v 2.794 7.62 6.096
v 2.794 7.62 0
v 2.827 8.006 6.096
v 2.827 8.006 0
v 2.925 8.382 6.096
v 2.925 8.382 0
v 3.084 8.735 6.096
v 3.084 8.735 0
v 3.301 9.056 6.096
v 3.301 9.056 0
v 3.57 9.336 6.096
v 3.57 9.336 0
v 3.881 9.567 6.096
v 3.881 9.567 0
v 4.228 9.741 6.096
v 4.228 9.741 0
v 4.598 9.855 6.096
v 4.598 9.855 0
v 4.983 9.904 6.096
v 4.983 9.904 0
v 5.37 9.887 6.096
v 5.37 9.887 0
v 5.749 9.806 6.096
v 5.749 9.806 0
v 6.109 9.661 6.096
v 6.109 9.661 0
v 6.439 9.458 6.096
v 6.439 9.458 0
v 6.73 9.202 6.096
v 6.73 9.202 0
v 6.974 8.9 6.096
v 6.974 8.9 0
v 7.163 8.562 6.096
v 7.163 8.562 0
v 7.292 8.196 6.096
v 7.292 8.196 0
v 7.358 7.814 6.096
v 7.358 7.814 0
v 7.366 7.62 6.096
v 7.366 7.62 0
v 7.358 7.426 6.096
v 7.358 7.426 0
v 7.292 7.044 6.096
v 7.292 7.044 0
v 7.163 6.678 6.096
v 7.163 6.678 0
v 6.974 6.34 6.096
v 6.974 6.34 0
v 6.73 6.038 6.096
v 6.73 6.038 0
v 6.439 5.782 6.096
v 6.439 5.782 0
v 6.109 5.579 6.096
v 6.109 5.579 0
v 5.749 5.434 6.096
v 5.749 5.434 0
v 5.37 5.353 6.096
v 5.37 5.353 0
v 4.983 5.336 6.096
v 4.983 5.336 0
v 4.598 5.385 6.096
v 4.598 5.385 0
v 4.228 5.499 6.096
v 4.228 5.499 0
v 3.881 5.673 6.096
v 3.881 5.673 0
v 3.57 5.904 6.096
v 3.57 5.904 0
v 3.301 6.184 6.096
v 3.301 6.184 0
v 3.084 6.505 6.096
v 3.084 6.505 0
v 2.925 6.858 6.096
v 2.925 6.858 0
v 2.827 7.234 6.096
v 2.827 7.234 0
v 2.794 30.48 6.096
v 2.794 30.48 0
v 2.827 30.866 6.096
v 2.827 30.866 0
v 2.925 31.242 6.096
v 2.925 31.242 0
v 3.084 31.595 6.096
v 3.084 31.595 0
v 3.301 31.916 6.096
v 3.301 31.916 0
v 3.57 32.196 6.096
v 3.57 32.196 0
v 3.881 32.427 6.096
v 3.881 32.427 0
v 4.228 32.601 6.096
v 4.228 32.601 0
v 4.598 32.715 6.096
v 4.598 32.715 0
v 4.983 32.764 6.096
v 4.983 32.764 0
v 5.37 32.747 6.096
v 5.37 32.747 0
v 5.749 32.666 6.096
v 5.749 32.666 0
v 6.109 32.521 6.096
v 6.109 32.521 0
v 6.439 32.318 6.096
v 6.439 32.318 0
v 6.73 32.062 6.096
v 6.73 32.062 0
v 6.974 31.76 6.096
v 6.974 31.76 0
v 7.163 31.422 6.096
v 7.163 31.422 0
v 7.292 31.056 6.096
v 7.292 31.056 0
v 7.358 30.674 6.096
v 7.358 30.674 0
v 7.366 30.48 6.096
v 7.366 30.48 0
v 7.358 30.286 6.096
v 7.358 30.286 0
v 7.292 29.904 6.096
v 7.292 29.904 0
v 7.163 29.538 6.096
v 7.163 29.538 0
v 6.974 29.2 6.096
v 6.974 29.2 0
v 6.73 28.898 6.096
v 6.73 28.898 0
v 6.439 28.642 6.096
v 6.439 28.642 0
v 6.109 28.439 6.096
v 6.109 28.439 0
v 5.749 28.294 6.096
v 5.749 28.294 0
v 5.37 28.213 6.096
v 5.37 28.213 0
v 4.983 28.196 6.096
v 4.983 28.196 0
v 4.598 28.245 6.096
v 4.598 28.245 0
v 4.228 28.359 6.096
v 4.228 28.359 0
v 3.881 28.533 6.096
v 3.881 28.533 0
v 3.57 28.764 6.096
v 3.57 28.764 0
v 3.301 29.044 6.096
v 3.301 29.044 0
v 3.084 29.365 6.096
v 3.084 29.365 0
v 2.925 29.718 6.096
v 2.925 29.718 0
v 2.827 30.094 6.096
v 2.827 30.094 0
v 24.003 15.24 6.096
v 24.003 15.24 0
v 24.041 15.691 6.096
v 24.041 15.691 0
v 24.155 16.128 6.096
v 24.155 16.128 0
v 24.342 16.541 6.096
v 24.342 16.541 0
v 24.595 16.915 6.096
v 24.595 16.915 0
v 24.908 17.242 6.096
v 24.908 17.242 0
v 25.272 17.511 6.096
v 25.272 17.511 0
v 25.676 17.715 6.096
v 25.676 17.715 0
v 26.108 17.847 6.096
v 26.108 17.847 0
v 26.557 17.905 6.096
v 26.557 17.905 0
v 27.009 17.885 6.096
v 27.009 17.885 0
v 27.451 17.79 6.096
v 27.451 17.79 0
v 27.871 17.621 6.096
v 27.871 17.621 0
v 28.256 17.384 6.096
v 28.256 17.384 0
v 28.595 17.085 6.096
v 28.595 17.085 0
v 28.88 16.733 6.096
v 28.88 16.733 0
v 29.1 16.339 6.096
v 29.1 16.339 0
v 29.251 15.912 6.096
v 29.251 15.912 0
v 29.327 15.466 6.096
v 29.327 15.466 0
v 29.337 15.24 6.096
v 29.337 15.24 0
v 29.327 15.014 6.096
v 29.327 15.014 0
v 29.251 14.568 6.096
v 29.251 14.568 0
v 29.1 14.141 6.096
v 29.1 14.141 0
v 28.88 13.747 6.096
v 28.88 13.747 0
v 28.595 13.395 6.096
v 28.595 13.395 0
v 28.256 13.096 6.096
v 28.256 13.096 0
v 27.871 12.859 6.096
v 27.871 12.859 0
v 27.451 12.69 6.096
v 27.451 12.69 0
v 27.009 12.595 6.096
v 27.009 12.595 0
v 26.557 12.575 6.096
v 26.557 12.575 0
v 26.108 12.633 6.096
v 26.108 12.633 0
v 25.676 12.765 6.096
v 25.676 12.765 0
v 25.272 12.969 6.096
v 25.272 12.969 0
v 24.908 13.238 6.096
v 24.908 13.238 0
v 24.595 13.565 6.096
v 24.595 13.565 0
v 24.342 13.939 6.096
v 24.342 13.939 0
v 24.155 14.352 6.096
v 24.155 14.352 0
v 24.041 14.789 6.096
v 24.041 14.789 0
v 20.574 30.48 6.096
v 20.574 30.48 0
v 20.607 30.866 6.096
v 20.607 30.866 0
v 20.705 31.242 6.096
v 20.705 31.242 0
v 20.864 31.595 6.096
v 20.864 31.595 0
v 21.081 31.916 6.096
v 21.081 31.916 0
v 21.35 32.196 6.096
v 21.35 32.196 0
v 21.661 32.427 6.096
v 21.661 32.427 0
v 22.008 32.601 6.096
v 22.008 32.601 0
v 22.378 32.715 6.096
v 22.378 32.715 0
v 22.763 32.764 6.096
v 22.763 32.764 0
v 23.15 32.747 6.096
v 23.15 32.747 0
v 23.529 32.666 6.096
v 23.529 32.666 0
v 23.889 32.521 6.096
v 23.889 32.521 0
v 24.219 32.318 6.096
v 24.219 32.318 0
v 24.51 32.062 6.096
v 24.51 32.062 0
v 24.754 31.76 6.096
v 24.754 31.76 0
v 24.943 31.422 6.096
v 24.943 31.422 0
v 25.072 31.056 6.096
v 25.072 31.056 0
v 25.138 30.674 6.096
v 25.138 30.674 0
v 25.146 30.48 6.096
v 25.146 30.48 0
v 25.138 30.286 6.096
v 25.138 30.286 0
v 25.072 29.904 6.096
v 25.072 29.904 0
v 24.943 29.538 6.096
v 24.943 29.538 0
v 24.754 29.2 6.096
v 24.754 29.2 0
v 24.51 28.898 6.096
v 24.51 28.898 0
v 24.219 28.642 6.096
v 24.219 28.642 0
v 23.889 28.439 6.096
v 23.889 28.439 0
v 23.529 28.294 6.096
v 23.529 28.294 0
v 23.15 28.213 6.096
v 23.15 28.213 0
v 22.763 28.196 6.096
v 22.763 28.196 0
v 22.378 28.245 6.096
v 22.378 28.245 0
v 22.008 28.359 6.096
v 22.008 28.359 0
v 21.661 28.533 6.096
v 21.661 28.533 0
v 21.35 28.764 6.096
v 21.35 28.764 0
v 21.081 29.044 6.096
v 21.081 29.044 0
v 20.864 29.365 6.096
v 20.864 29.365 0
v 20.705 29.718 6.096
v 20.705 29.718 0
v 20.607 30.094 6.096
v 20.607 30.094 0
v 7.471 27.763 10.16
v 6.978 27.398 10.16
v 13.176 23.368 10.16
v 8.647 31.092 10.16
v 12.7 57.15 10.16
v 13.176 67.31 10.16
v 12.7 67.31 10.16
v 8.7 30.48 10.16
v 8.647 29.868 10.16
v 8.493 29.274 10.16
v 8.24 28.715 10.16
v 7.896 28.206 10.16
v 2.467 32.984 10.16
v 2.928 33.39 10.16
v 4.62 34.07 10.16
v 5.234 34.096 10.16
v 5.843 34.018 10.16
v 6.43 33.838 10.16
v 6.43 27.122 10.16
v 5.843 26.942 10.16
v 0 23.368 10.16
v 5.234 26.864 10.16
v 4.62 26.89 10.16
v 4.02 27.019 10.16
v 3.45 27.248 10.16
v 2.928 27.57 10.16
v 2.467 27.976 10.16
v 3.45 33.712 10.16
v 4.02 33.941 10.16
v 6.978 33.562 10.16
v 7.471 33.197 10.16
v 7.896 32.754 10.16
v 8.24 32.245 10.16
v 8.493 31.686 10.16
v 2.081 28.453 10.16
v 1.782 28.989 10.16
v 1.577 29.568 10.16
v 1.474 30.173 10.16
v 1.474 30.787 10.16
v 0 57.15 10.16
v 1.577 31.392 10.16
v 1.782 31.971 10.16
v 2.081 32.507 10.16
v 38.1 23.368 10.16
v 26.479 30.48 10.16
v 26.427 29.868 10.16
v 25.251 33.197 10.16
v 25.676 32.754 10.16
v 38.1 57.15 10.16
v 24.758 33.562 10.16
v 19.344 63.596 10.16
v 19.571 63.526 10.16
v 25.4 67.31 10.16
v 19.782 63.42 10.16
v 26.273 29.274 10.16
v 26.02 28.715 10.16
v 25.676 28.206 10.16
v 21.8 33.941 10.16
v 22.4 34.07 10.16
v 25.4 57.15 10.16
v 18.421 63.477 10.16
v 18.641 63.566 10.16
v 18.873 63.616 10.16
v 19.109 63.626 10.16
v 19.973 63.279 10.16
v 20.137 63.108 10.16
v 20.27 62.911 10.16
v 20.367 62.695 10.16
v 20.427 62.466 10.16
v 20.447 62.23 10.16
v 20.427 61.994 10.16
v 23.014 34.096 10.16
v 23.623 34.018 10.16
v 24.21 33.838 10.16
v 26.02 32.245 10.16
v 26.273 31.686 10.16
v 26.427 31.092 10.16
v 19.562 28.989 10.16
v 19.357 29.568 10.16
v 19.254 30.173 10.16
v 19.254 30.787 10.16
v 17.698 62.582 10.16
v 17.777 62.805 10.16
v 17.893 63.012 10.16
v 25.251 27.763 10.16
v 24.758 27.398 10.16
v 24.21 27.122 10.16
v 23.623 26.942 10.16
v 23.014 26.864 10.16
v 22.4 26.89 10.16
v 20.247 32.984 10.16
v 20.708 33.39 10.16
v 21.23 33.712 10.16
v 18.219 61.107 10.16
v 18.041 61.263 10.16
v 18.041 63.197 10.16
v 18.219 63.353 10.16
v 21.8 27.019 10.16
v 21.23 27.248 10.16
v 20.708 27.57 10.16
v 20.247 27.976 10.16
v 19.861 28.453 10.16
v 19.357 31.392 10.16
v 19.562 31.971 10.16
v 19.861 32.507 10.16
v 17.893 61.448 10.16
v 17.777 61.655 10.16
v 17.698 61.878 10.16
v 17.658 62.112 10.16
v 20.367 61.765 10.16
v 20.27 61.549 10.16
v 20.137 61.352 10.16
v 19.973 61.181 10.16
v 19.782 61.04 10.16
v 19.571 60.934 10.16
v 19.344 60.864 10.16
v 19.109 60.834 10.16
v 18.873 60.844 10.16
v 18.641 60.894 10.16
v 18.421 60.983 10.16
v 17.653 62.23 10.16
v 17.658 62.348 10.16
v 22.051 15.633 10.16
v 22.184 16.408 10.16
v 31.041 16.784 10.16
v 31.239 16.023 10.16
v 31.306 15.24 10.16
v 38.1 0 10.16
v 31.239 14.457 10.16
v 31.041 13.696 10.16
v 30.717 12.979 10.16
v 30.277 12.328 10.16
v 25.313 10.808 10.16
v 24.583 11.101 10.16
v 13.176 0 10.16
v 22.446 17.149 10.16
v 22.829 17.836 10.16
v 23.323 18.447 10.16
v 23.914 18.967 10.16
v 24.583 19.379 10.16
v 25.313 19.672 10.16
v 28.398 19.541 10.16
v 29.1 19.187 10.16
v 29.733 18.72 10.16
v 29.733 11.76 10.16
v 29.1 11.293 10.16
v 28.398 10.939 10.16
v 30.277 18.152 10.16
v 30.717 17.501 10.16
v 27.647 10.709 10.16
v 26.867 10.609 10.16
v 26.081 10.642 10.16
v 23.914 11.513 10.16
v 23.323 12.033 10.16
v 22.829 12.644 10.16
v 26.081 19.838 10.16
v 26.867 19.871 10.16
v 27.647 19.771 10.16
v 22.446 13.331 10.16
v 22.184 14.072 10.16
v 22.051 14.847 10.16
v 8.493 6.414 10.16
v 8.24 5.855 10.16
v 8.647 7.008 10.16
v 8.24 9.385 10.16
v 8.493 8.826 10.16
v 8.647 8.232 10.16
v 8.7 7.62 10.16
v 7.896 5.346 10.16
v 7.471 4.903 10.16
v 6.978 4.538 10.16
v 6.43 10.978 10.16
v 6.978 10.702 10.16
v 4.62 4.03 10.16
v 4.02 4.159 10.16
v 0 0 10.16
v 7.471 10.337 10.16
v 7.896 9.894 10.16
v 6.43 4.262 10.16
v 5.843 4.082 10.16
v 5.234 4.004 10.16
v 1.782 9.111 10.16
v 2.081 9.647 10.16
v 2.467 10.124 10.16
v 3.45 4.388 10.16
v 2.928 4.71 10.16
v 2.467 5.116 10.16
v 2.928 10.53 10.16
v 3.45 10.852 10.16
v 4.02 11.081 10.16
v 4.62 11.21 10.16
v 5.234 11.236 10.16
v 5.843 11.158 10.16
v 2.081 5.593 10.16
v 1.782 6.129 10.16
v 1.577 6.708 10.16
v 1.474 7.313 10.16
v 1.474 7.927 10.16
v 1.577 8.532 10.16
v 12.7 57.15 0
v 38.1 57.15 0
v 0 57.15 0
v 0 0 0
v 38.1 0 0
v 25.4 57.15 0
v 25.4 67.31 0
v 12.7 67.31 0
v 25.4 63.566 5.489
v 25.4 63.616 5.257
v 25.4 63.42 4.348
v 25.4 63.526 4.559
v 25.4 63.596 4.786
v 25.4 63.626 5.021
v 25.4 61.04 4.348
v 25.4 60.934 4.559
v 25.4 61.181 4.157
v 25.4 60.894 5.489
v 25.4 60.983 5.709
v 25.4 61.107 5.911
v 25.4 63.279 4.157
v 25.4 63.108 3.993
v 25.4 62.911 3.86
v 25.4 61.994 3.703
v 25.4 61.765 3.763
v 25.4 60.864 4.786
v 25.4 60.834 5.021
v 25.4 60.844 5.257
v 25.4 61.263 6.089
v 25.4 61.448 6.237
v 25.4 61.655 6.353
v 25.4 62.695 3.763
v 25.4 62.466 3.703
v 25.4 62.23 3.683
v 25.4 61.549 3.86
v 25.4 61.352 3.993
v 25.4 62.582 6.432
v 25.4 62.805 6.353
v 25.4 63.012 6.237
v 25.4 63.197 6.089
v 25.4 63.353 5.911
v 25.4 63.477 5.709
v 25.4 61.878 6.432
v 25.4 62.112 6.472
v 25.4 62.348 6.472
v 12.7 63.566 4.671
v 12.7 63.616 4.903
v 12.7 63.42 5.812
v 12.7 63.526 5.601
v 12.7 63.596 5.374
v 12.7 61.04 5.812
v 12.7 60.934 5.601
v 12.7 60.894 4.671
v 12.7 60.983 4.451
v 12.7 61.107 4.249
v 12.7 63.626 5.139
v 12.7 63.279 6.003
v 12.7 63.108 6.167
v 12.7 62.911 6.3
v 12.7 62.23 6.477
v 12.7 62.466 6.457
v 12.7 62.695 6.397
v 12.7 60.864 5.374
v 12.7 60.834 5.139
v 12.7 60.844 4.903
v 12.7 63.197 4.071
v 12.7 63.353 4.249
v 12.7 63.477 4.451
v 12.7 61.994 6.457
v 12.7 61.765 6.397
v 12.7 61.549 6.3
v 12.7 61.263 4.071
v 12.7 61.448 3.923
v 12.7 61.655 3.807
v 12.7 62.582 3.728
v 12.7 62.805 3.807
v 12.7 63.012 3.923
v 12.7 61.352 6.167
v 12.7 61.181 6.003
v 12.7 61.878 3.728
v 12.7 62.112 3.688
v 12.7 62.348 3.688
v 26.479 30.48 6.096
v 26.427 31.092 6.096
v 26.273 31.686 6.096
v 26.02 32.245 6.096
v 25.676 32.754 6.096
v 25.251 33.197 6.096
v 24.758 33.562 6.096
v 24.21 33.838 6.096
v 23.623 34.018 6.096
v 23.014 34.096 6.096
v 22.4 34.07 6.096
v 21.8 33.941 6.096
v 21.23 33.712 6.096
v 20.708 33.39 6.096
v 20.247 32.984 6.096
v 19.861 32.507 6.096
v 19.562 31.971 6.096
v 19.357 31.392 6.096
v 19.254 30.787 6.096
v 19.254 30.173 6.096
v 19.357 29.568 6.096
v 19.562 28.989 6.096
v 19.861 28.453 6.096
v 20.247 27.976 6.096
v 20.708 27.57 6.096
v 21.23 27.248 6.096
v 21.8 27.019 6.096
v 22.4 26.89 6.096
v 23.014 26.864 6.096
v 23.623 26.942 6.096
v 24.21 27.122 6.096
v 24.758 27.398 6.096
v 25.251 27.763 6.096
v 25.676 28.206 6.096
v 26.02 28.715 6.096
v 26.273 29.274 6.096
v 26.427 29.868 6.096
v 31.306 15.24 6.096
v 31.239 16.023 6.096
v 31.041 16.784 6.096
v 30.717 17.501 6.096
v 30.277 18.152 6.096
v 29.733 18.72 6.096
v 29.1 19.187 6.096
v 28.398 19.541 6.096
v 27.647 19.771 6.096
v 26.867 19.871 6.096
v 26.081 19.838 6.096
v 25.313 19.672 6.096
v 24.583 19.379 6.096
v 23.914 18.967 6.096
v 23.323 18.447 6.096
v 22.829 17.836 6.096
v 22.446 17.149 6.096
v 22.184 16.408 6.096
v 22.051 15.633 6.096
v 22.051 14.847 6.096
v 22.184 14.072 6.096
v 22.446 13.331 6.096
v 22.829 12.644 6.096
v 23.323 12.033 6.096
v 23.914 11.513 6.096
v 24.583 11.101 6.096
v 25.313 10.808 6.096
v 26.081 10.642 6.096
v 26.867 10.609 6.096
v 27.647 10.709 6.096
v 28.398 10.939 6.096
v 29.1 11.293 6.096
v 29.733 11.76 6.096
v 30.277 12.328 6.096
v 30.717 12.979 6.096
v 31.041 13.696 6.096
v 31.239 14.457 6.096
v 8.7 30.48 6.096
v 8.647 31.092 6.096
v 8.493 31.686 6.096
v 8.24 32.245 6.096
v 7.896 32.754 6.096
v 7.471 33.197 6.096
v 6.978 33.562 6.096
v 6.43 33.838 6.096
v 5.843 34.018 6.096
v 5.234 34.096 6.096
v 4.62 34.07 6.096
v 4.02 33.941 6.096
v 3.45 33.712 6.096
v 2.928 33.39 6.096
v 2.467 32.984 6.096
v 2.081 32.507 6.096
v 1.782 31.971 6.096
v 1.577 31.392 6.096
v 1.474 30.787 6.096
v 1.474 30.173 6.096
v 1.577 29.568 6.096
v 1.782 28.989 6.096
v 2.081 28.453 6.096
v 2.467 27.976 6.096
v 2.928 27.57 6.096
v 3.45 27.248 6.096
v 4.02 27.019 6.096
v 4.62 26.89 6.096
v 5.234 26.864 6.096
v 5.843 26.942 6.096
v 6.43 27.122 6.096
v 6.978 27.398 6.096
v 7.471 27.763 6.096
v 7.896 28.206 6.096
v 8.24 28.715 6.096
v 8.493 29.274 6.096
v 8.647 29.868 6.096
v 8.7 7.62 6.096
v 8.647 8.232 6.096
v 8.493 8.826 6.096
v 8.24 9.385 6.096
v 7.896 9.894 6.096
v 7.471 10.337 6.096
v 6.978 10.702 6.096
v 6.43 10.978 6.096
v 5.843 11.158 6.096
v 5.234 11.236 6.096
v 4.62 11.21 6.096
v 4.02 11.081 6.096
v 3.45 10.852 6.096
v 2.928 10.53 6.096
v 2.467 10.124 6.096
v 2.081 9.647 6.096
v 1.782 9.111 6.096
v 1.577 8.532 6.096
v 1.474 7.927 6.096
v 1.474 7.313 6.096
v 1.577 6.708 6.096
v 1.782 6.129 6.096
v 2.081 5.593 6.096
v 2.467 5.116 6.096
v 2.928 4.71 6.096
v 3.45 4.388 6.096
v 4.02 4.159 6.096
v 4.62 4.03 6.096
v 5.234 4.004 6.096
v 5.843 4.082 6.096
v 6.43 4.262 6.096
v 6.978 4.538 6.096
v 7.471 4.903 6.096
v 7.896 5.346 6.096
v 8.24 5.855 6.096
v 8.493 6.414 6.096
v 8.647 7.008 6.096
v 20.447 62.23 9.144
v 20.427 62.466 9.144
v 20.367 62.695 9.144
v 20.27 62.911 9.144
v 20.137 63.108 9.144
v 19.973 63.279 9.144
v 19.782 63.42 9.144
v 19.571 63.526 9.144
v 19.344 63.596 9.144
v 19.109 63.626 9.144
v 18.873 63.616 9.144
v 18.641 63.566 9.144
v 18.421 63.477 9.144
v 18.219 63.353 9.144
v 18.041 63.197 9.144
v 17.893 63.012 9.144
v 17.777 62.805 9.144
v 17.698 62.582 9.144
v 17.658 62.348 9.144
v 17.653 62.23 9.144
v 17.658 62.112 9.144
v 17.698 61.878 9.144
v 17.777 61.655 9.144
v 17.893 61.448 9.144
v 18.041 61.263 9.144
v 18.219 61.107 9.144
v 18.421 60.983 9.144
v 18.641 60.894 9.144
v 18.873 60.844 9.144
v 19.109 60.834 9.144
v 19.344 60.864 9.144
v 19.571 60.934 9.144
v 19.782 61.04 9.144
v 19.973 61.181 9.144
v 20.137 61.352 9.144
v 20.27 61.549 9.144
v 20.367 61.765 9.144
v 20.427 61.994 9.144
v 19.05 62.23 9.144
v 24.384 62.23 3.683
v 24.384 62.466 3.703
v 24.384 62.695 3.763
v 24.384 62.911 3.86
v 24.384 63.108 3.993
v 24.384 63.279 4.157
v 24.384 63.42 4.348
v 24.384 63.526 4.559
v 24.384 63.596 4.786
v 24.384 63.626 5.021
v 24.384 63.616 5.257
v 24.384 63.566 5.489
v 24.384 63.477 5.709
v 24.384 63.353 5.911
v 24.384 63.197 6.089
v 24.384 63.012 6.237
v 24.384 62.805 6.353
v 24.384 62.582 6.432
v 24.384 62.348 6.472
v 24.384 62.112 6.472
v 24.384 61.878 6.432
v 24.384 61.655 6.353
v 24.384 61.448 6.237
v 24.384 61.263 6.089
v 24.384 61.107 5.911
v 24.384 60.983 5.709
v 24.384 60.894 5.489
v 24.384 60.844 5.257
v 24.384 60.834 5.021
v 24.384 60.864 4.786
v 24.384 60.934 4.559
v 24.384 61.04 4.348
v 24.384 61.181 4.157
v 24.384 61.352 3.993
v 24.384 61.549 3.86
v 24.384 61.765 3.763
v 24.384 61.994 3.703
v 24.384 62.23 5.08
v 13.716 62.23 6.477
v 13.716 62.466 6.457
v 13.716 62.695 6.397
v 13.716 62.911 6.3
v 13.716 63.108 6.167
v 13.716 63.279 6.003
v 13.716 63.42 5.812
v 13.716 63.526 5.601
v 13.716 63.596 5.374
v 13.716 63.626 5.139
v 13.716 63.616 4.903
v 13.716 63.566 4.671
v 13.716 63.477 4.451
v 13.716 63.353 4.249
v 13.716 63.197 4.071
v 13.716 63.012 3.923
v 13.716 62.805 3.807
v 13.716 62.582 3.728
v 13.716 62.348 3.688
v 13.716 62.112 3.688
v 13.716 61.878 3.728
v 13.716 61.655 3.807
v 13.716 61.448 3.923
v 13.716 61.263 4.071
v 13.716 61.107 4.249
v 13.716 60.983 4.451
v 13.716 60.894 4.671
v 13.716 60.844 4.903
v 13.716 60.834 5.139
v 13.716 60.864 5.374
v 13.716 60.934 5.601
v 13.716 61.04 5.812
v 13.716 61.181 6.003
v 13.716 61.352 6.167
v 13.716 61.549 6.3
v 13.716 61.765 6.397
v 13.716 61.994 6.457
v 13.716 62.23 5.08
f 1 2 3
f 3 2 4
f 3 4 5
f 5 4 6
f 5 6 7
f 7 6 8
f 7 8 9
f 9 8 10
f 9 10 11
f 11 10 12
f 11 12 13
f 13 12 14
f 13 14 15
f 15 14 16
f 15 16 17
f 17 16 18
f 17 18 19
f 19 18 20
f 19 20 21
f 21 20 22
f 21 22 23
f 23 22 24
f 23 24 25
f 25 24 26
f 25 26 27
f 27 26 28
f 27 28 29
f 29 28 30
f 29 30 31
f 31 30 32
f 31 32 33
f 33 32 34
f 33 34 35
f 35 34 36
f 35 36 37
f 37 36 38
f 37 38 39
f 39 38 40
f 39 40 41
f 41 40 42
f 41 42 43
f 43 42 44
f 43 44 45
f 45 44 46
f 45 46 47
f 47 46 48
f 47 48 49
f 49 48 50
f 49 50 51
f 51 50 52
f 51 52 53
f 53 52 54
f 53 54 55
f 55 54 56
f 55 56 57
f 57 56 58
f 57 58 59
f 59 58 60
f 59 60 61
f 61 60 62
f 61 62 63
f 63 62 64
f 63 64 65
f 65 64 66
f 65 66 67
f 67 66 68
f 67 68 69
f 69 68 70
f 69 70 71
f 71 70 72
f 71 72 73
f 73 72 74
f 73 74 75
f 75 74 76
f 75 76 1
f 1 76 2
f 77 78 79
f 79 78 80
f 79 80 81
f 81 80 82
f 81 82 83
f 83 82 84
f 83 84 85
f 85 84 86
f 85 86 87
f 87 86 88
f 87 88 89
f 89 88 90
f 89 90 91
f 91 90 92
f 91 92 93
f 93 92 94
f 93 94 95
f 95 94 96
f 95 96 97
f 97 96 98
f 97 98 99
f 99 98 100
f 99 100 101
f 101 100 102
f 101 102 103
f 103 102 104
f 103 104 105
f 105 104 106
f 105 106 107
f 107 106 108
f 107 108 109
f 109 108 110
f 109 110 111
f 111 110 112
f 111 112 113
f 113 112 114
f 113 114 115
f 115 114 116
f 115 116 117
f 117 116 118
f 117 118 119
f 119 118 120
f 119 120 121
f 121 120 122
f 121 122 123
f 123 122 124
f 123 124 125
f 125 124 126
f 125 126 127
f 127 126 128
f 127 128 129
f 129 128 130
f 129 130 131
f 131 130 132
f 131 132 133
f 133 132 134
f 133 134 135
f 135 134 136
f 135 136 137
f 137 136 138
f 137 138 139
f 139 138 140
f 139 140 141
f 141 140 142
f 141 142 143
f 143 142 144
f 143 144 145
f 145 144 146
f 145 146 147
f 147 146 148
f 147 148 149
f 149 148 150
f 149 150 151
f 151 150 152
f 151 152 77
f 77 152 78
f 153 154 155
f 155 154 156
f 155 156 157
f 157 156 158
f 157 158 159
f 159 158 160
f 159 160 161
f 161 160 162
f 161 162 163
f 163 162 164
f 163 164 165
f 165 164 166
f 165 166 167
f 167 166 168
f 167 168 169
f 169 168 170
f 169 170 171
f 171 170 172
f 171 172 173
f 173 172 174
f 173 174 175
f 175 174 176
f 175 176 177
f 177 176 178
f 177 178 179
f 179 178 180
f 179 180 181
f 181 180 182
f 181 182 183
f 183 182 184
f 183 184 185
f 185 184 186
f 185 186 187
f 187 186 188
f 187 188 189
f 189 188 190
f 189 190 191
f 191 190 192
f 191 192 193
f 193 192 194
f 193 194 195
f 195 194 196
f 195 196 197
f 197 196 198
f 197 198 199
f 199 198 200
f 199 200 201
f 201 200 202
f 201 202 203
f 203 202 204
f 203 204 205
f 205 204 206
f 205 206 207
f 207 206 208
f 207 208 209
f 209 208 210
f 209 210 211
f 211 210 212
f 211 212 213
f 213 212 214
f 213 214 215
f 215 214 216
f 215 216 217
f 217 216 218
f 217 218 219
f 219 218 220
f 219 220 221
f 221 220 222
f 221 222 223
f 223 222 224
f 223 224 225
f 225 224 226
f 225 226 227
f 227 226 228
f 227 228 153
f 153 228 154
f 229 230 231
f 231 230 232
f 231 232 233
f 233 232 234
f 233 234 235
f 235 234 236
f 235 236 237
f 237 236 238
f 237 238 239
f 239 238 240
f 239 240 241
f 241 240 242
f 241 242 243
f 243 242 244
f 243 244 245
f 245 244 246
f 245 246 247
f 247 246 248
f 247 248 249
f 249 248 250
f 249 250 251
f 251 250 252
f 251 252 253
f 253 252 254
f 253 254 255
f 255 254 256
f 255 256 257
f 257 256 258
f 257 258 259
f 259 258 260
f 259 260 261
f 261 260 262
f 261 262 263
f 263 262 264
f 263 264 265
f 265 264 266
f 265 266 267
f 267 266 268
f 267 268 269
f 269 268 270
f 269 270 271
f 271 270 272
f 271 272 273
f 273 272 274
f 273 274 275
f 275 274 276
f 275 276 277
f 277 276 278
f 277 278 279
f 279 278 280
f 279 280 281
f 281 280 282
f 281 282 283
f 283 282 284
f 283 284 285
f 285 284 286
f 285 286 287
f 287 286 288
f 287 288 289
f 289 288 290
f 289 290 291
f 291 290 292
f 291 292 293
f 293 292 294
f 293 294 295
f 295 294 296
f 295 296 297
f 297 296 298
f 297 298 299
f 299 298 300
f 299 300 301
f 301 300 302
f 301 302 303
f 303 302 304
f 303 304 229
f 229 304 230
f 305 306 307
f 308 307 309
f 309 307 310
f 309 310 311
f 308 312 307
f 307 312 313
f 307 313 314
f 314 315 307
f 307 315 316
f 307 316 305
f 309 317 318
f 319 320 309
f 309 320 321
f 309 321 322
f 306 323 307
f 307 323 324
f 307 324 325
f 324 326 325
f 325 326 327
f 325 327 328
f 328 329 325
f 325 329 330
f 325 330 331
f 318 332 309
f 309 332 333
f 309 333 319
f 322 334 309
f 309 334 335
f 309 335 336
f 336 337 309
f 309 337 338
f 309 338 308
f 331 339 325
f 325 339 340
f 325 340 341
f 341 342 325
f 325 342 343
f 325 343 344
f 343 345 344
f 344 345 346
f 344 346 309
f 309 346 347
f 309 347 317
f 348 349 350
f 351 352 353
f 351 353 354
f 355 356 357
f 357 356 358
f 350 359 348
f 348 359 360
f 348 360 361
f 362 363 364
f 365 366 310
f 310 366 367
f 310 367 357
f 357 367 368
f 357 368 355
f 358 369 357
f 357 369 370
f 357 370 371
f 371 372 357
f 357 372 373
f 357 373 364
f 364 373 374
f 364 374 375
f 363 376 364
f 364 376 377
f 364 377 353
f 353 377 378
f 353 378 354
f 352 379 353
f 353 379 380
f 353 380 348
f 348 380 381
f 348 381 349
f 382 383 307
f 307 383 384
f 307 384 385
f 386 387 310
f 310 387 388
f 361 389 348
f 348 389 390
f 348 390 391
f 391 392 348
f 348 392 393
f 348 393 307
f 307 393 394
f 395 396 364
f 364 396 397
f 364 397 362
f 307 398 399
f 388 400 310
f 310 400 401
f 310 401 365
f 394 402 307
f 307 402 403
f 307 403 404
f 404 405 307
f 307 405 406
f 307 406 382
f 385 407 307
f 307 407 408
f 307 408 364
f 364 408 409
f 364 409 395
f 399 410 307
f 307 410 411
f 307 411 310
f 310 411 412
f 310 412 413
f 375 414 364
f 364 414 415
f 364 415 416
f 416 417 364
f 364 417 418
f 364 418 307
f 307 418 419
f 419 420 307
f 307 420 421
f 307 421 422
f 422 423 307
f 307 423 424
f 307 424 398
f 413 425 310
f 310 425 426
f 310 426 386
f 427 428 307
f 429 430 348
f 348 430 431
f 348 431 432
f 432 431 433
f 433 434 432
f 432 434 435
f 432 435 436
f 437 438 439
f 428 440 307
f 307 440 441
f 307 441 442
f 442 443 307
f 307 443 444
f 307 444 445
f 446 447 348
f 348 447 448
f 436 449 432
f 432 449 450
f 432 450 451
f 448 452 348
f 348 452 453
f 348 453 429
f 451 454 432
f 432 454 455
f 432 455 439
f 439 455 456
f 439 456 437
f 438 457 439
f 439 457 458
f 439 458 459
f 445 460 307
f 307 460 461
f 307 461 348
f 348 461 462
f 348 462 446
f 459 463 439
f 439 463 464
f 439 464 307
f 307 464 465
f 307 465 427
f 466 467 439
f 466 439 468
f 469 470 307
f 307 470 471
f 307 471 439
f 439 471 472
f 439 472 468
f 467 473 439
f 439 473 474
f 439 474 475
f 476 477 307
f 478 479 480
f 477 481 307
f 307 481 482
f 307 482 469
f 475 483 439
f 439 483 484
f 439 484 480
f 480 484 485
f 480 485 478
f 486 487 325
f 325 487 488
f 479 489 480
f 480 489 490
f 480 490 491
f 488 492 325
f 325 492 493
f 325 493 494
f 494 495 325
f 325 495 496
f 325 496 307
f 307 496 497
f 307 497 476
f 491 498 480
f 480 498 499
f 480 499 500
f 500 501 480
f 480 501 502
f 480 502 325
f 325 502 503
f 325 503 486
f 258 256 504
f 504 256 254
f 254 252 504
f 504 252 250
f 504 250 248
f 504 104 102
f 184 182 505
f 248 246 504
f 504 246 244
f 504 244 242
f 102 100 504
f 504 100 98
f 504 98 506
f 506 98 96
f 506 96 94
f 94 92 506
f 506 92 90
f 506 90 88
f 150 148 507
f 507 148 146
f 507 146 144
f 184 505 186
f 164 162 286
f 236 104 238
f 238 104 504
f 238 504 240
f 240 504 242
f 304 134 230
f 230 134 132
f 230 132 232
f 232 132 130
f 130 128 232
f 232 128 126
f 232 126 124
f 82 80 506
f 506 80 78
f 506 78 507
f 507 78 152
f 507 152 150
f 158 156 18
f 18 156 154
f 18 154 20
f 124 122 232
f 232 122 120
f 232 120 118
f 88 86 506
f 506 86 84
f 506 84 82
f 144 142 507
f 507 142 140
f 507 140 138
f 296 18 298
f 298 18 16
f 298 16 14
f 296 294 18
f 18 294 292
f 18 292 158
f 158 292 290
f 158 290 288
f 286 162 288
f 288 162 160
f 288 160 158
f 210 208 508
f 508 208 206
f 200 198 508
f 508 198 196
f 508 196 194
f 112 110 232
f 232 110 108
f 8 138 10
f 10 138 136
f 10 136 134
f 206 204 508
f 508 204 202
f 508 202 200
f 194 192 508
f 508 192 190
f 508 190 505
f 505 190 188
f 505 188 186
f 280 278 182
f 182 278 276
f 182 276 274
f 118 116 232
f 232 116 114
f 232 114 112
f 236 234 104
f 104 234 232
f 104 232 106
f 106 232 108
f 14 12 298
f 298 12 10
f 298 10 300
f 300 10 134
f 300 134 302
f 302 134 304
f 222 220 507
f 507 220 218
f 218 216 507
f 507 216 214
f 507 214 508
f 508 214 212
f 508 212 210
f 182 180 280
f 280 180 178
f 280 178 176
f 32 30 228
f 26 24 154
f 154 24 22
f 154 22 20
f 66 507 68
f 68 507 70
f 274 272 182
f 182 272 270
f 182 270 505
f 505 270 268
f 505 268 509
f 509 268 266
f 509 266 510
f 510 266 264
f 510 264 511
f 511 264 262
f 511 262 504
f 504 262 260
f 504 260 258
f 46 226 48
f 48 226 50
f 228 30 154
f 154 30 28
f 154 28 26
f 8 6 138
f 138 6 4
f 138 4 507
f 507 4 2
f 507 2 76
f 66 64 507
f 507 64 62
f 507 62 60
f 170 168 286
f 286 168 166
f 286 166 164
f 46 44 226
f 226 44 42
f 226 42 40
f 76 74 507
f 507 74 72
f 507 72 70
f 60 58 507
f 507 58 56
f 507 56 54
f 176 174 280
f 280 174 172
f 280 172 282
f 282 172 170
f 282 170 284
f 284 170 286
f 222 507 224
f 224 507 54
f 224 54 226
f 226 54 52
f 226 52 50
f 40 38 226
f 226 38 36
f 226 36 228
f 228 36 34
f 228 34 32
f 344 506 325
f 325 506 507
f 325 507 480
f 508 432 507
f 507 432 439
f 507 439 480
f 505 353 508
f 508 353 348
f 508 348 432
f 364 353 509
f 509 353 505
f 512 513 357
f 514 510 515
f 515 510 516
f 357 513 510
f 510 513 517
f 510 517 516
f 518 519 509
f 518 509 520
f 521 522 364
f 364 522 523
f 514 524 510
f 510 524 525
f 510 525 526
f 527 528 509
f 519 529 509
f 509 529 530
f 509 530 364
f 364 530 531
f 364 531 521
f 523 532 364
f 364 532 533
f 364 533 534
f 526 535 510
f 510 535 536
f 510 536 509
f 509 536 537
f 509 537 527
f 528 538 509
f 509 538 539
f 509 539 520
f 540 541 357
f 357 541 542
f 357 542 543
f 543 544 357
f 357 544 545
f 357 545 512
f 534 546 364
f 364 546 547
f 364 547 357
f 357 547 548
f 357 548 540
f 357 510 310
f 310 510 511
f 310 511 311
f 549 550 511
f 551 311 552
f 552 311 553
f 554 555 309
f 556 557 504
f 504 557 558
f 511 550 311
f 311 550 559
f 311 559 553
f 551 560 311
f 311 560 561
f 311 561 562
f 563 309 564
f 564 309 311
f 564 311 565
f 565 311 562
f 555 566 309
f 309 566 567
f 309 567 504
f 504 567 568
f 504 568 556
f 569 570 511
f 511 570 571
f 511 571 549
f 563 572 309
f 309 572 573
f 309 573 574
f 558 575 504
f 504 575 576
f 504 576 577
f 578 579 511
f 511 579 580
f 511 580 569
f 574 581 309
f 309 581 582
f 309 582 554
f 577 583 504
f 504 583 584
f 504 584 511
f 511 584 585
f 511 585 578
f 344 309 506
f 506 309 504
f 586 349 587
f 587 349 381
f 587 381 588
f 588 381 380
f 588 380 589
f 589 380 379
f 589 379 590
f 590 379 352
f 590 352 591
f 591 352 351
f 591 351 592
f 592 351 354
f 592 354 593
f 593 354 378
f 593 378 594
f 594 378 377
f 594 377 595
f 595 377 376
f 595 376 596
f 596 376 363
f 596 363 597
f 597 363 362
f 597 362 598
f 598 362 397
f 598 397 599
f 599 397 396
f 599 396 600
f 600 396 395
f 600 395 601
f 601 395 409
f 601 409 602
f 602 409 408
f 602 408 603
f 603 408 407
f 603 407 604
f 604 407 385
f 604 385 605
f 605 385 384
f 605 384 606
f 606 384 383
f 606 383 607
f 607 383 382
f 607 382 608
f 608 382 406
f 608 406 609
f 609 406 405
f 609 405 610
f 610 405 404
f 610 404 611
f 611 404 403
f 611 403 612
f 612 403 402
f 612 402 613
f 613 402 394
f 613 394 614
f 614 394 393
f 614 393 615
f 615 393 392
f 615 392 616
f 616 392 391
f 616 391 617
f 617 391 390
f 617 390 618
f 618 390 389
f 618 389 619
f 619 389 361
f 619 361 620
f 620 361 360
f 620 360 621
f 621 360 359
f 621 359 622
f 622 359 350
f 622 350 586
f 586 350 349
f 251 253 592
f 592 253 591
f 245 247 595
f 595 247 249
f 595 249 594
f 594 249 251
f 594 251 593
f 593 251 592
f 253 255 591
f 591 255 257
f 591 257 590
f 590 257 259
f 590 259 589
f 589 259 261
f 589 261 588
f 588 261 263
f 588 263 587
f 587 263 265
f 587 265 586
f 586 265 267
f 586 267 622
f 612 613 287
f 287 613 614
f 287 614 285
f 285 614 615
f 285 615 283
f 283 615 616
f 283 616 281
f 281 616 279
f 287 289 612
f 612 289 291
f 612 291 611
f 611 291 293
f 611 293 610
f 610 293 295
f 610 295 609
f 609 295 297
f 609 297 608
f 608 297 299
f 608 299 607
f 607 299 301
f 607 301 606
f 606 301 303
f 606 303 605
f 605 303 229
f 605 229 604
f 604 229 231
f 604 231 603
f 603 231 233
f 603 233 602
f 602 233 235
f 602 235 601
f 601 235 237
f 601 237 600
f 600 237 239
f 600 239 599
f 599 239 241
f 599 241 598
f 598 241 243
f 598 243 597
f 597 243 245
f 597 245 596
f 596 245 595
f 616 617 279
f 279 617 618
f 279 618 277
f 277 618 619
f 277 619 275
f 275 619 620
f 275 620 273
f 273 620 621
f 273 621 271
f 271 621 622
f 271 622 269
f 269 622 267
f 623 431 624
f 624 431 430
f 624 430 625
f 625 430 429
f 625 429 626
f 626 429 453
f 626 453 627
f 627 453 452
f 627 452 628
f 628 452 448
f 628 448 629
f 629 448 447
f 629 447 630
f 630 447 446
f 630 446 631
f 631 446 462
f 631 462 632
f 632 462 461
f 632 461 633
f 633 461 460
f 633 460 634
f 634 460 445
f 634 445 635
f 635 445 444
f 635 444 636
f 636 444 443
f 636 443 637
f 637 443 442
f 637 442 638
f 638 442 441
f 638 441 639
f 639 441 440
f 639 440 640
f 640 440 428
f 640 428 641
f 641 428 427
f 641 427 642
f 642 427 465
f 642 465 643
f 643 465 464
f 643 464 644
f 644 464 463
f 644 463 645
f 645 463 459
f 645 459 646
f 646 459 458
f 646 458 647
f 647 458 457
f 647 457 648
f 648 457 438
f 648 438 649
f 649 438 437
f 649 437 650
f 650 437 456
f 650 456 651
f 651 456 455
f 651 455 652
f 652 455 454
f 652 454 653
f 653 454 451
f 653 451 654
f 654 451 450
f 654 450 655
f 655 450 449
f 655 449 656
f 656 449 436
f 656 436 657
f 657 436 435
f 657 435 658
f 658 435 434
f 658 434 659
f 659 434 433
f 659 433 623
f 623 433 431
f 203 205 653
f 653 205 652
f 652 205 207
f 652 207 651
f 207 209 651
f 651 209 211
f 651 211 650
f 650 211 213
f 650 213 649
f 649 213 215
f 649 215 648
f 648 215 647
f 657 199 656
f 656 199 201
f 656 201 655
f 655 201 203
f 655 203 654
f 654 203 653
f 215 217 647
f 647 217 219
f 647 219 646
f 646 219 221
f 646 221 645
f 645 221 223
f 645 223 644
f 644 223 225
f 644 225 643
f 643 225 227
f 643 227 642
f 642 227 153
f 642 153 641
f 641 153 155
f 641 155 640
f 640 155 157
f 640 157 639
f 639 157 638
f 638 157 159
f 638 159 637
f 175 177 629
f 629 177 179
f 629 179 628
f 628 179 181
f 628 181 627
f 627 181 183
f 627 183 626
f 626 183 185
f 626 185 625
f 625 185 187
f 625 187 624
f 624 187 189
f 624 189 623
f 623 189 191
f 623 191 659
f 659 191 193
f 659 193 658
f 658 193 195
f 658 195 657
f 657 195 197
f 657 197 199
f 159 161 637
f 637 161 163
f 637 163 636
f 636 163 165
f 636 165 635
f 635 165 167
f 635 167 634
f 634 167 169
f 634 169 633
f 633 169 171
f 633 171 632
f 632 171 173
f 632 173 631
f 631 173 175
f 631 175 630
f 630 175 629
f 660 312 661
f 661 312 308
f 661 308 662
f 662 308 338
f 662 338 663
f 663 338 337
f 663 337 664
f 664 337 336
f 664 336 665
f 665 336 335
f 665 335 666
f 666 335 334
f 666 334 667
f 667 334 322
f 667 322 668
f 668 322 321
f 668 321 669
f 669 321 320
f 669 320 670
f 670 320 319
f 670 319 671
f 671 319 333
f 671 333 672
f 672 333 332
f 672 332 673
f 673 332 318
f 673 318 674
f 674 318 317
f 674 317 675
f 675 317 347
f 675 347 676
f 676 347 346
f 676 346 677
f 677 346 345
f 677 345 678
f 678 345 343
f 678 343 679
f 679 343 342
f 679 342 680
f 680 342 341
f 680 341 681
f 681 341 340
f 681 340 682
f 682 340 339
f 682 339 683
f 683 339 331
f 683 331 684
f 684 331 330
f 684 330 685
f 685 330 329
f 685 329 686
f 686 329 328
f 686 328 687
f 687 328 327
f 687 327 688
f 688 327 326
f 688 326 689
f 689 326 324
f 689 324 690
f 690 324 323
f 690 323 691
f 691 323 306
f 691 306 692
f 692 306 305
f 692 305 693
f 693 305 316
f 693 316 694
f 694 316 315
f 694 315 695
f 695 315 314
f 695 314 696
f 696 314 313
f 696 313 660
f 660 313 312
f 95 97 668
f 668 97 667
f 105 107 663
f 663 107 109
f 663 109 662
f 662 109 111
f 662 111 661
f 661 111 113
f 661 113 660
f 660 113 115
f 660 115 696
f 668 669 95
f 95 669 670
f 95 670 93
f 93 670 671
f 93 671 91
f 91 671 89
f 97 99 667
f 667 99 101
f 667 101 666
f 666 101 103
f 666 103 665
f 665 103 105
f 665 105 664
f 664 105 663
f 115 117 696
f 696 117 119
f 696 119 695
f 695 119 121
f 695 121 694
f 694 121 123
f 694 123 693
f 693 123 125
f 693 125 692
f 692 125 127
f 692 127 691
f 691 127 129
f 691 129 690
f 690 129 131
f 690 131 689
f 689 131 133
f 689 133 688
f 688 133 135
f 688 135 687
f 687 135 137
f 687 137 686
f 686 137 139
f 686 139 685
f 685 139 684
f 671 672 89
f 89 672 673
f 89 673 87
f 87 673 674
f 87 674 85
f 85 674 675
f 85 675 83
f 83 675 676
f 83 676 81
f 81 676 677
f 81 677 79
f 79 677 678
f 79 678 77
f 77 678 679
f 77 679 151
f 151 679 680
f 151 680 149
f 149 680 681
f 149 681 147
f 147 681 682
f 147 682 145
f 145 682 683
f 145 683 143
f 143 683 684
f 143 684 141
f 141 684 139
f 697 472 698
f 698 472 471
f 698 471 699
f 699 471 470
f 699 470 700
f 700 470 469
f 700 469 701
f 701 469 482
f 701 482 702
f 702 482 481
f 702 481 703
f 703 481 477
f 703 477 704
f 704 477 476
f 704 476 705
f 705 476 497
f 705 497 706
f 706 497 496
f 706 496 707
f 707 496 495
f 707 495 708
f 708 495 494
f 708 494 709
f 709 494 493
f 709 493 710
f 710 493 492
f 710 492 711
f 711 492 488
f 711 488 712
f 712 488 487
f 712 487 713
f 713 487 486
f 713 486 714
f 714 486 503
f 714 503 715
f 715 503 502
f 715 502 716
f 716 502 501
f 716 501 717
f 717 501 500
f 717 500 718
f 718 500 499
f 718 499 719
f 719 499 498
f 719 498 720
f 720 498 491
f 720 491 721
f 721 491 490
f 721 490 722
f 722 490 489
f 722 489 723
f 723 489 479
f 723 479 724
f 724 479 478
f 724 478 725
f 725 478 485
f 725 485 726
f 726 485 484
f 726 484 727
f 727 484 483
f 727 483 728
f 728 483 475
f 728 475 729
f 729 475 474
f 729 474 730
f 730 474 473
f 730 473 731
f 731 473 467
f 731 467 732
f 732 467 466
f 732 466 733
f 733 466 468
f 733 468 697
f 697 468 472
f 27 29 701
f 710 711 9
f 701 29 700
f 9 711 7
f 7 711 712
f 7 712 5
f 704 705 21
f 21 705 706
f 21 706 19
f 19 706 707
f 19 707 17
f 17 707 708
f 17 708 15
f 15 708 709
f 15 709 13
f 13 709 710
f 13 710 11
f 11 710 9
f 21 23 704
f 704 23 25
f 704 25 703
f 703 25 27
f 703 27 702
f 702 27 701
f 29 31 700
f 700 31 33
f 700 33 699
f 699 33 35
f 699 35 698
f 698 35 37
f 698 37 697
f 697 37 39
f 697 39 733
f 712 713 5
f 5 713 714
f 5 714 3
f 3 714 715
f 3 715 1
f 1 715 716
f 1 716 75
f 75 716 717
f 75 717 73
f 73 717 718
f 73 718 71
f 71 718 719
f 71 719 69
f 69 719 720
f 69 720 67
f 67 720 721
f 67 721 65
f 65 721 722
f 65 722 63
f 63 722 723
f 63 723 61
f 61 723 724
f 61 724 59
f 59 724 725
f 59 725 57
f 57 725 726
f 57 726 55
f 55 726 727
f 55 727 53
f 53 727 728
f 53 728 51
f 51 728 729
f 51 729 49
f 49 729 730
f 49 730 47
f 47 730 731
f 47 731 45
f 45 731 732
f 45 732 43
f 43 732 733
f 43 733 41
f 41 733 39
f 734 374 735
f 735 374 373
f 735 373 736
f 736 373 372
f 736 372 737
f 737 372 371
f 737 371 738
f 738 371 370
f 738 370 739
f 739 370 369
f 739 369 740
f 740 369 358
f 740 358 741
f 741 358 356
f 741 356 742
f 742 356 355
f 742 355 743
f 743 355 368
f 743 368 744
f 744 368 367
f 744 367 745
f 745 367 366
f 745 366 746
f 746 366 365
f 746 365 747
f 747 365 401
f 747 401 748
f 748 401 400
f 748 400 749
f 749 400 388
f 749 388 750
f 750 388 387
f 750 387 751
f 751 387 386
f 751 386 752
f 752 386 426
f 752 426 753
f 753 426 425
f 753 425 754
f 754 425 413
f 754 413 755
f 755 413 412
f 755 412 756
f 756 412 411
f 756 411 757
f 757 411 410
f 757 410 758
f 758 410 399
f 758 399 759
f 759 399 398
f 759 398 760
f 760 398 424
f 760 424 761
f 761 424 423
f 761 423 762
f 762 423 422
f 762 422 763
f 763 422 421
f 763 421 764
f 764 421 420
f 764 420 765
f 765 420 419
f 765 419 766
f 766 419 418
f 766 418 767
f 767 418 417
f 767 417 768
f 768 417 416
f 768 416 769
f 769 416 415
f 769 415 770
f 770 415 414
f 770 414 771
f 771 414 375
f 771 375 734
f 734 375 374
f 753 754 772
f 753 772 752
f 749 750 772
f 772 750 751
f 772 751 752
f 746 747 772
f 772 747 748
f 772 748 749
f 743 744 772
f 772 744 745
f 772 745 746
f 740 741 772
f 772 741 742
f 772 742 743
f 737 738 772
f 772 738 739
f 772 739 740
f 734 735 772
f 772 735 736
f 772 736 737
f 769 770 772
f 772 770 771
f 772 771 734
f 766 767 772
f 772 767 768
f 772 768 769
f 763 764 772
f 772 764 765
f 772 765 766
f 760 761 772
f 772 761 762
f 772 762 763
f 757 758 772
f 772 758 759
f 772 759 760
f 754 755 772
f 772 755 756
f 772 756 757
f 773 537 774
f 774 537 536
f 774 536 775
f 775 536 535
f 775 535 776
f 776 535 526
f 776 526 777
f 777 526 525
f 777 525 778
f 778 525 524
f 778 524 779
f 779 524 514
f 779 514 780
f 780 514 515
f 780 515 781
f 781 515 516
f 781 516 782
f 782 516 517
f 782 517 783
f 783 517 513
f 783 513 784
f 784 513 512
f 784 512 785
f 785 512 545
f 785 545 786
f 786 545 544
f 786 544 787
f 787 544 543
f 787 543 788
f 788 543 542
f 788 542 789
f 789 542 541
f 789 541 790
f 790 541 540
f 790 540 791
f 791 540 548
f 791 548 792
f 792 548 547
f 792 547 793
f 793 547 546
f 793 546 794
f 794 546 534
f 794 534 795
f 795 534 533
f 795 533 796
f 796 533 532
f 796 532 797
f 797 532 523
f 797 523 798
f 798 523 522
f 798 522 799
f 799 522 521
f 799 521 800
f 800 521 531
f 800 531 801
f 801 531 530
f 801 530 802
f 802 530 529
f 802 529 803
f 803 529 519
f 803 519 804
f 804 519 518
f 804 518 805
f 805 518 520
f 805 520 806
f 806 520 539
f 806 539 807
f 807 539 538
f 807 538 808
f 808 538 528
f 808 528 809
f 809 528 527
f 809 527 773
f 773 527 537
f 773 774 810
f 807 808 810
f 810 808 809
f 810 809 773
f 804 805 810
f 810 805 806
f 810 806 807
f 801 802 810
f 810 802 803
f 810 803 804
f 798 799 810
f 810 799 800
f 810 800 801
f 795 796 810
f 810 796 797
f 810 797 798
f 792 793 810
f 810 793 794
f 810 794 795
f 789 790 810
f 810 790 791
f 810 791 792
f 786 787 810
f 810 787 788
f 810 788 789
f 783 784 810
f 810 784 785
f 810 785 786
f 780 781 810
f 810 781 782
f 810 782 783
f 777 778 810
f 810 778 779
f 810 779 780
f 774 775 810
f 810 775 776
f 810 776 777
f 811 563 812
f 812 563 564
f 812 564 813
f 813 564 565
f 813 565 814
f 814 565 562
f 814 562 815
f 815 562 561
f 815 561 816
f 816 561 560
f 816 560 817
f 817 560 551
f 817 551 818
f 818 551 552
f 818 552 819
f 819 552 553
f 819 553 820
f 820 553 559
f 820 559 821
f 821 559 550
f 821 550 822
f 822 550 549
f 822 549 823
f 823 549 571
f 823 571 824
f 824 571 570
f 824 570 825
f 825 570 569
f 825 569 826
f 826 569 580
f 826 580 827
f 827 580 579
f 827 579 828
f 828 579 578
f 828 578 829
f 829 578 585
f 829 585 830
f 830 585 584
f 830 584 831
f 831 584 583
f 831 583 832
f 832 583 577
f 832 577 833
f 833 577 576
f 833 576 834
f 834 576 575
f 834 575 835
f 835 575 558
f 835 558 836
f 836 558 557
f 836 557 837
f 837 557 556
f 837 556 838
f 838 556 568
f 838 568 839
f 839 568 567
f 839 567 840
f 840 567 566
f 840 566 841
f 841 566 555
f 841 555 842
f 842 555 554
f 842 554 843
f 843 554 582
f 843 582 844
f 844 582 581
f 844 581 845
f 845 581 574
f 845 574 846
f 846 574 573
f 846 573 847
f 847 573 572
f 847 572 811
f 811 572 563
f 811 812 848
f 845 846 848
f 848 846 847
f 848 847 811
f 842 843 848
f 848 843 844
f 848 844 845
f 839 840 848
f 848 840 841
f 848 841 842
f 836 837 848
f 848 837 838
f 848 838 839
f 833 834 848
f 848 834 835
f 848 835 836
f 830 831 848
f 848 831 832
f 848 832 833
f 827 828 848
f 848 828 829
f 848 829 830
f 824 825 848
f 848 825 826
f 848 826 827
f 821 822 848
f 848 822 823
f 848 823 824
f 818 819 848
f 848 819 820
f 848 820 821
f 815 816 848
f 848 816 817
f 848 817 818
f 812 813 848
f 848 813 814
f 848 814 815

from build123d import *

# Parameters (mm, degrees)
SKETCH1_R           = 2.286
SKETCH1_R_2         = 2.667
BOSS_EXTRUDE1_DEPTH = 10.16
SKETCH7_R           = 3.6195
SKETCH7_R_2         = 4.6355
CUT_EXTRUDE1_DEPTH  = 4.064
SKETCH3_R           = 1.397
CUT_EXTRUDE2_DEPTH  = 1.016
SKETCH8_R           = 1.397
CUT_EXTRUDE3_DEPTH  = 1.016
CUT_EXTRUDE4_START  = -1.016
SKETCH9_R           = 1.397
CUT_EXTRUDE4_DEPTH  = 1.016


with BuildPart() as part:
    # Sketch1 → Boss-Extrude1 (new body)
    with BuildSketch(Plane.XY):
        Polygon((0, 57.15), (12.7, 57.15), (12.7, 67.31), (25.4, 67.31), (25.4, 57.15), (38.1, 57.15), (38.1, 0), (0, 0), align=None)
        with Locations((5.08, 7.62)):
            Circle(SKETCH1_R, mode=Mode.SUBTRACT)
        with Locations((5.08, 30.48)):
            Circle(SKETCH1_R, mode=Mode.SUBTRACT)
        with Locations((26.67, 15.24)):
            Circle(SKETCH1_R_2, mode=Mode.SUBTRACT)
        with Locations((22.86, 30.48)):
            Circle(SKETCH1_R, mode=Mode.SUBTRACT)
    extrude(amount=BOSS_EXTRUDE1_DEPTH)

    # Sketch7 → Cut-Extrude1 (cut)
    with BuildSketch(Plane.XY.offset(10.16)):
        with Locations((5.08, 30.48)):
            Circle(SKETCH7_R)
        with Locations((22.86, 30.48)):
            Circle(SKETCH7_R)
        with Locations((5.08, 7.62)):
            Circle(SKETCH7_R)
        with Locations((26.67, 15.24)):
            Circle(SKETCH7_R_2)
    extrude(amount=-CUT_EXTRUDE1_DEPTH, mode=Mode.SUBTRACT)

    # Sketch3 → Cut-Extrude2 (cut)
    with BuildSketch(Plane(origin=(0, 0, 10.16), x_dir=(-1, 0, 0), z_dir=(0, 0, -1))):
        with Locations((-19.05, 62.23)):
            Circle(SKETCH3_R)
    extrude(amount=CUT_EXTRUDE2_DEPTH, mode=Mode.SUBTRACT)

    # Sketch8 → Cut-Extrude3 (cut)
    with BuildSketch(Plane(origin=(25.4, 0, 0), x_dir=(0, 0, -1), z_dir=(1, 0, 0))):
        with Locations((-5.08, 62.23)):
            Circle(SKETCH8_R)
    extrude(amount=-CUT_EXTRUDE3_DEPTH, mode=Mode.SUBTRACT)

    # Sketch9 → Cut-Extrude4 (cut)
    with BuildSketch(Plane.ZY.offset(-12.7).offset(CUT_EXTRUDE4_START)):
        with Locations(Location((5.08, 62.23, 0), (0, 0, 180))):
            Circle(SKETCH9_R)
    extrude(amount=CUT_EXTRUDE4_DEPTH, mode=Mode.SUBTRACT)


solid = part.part
